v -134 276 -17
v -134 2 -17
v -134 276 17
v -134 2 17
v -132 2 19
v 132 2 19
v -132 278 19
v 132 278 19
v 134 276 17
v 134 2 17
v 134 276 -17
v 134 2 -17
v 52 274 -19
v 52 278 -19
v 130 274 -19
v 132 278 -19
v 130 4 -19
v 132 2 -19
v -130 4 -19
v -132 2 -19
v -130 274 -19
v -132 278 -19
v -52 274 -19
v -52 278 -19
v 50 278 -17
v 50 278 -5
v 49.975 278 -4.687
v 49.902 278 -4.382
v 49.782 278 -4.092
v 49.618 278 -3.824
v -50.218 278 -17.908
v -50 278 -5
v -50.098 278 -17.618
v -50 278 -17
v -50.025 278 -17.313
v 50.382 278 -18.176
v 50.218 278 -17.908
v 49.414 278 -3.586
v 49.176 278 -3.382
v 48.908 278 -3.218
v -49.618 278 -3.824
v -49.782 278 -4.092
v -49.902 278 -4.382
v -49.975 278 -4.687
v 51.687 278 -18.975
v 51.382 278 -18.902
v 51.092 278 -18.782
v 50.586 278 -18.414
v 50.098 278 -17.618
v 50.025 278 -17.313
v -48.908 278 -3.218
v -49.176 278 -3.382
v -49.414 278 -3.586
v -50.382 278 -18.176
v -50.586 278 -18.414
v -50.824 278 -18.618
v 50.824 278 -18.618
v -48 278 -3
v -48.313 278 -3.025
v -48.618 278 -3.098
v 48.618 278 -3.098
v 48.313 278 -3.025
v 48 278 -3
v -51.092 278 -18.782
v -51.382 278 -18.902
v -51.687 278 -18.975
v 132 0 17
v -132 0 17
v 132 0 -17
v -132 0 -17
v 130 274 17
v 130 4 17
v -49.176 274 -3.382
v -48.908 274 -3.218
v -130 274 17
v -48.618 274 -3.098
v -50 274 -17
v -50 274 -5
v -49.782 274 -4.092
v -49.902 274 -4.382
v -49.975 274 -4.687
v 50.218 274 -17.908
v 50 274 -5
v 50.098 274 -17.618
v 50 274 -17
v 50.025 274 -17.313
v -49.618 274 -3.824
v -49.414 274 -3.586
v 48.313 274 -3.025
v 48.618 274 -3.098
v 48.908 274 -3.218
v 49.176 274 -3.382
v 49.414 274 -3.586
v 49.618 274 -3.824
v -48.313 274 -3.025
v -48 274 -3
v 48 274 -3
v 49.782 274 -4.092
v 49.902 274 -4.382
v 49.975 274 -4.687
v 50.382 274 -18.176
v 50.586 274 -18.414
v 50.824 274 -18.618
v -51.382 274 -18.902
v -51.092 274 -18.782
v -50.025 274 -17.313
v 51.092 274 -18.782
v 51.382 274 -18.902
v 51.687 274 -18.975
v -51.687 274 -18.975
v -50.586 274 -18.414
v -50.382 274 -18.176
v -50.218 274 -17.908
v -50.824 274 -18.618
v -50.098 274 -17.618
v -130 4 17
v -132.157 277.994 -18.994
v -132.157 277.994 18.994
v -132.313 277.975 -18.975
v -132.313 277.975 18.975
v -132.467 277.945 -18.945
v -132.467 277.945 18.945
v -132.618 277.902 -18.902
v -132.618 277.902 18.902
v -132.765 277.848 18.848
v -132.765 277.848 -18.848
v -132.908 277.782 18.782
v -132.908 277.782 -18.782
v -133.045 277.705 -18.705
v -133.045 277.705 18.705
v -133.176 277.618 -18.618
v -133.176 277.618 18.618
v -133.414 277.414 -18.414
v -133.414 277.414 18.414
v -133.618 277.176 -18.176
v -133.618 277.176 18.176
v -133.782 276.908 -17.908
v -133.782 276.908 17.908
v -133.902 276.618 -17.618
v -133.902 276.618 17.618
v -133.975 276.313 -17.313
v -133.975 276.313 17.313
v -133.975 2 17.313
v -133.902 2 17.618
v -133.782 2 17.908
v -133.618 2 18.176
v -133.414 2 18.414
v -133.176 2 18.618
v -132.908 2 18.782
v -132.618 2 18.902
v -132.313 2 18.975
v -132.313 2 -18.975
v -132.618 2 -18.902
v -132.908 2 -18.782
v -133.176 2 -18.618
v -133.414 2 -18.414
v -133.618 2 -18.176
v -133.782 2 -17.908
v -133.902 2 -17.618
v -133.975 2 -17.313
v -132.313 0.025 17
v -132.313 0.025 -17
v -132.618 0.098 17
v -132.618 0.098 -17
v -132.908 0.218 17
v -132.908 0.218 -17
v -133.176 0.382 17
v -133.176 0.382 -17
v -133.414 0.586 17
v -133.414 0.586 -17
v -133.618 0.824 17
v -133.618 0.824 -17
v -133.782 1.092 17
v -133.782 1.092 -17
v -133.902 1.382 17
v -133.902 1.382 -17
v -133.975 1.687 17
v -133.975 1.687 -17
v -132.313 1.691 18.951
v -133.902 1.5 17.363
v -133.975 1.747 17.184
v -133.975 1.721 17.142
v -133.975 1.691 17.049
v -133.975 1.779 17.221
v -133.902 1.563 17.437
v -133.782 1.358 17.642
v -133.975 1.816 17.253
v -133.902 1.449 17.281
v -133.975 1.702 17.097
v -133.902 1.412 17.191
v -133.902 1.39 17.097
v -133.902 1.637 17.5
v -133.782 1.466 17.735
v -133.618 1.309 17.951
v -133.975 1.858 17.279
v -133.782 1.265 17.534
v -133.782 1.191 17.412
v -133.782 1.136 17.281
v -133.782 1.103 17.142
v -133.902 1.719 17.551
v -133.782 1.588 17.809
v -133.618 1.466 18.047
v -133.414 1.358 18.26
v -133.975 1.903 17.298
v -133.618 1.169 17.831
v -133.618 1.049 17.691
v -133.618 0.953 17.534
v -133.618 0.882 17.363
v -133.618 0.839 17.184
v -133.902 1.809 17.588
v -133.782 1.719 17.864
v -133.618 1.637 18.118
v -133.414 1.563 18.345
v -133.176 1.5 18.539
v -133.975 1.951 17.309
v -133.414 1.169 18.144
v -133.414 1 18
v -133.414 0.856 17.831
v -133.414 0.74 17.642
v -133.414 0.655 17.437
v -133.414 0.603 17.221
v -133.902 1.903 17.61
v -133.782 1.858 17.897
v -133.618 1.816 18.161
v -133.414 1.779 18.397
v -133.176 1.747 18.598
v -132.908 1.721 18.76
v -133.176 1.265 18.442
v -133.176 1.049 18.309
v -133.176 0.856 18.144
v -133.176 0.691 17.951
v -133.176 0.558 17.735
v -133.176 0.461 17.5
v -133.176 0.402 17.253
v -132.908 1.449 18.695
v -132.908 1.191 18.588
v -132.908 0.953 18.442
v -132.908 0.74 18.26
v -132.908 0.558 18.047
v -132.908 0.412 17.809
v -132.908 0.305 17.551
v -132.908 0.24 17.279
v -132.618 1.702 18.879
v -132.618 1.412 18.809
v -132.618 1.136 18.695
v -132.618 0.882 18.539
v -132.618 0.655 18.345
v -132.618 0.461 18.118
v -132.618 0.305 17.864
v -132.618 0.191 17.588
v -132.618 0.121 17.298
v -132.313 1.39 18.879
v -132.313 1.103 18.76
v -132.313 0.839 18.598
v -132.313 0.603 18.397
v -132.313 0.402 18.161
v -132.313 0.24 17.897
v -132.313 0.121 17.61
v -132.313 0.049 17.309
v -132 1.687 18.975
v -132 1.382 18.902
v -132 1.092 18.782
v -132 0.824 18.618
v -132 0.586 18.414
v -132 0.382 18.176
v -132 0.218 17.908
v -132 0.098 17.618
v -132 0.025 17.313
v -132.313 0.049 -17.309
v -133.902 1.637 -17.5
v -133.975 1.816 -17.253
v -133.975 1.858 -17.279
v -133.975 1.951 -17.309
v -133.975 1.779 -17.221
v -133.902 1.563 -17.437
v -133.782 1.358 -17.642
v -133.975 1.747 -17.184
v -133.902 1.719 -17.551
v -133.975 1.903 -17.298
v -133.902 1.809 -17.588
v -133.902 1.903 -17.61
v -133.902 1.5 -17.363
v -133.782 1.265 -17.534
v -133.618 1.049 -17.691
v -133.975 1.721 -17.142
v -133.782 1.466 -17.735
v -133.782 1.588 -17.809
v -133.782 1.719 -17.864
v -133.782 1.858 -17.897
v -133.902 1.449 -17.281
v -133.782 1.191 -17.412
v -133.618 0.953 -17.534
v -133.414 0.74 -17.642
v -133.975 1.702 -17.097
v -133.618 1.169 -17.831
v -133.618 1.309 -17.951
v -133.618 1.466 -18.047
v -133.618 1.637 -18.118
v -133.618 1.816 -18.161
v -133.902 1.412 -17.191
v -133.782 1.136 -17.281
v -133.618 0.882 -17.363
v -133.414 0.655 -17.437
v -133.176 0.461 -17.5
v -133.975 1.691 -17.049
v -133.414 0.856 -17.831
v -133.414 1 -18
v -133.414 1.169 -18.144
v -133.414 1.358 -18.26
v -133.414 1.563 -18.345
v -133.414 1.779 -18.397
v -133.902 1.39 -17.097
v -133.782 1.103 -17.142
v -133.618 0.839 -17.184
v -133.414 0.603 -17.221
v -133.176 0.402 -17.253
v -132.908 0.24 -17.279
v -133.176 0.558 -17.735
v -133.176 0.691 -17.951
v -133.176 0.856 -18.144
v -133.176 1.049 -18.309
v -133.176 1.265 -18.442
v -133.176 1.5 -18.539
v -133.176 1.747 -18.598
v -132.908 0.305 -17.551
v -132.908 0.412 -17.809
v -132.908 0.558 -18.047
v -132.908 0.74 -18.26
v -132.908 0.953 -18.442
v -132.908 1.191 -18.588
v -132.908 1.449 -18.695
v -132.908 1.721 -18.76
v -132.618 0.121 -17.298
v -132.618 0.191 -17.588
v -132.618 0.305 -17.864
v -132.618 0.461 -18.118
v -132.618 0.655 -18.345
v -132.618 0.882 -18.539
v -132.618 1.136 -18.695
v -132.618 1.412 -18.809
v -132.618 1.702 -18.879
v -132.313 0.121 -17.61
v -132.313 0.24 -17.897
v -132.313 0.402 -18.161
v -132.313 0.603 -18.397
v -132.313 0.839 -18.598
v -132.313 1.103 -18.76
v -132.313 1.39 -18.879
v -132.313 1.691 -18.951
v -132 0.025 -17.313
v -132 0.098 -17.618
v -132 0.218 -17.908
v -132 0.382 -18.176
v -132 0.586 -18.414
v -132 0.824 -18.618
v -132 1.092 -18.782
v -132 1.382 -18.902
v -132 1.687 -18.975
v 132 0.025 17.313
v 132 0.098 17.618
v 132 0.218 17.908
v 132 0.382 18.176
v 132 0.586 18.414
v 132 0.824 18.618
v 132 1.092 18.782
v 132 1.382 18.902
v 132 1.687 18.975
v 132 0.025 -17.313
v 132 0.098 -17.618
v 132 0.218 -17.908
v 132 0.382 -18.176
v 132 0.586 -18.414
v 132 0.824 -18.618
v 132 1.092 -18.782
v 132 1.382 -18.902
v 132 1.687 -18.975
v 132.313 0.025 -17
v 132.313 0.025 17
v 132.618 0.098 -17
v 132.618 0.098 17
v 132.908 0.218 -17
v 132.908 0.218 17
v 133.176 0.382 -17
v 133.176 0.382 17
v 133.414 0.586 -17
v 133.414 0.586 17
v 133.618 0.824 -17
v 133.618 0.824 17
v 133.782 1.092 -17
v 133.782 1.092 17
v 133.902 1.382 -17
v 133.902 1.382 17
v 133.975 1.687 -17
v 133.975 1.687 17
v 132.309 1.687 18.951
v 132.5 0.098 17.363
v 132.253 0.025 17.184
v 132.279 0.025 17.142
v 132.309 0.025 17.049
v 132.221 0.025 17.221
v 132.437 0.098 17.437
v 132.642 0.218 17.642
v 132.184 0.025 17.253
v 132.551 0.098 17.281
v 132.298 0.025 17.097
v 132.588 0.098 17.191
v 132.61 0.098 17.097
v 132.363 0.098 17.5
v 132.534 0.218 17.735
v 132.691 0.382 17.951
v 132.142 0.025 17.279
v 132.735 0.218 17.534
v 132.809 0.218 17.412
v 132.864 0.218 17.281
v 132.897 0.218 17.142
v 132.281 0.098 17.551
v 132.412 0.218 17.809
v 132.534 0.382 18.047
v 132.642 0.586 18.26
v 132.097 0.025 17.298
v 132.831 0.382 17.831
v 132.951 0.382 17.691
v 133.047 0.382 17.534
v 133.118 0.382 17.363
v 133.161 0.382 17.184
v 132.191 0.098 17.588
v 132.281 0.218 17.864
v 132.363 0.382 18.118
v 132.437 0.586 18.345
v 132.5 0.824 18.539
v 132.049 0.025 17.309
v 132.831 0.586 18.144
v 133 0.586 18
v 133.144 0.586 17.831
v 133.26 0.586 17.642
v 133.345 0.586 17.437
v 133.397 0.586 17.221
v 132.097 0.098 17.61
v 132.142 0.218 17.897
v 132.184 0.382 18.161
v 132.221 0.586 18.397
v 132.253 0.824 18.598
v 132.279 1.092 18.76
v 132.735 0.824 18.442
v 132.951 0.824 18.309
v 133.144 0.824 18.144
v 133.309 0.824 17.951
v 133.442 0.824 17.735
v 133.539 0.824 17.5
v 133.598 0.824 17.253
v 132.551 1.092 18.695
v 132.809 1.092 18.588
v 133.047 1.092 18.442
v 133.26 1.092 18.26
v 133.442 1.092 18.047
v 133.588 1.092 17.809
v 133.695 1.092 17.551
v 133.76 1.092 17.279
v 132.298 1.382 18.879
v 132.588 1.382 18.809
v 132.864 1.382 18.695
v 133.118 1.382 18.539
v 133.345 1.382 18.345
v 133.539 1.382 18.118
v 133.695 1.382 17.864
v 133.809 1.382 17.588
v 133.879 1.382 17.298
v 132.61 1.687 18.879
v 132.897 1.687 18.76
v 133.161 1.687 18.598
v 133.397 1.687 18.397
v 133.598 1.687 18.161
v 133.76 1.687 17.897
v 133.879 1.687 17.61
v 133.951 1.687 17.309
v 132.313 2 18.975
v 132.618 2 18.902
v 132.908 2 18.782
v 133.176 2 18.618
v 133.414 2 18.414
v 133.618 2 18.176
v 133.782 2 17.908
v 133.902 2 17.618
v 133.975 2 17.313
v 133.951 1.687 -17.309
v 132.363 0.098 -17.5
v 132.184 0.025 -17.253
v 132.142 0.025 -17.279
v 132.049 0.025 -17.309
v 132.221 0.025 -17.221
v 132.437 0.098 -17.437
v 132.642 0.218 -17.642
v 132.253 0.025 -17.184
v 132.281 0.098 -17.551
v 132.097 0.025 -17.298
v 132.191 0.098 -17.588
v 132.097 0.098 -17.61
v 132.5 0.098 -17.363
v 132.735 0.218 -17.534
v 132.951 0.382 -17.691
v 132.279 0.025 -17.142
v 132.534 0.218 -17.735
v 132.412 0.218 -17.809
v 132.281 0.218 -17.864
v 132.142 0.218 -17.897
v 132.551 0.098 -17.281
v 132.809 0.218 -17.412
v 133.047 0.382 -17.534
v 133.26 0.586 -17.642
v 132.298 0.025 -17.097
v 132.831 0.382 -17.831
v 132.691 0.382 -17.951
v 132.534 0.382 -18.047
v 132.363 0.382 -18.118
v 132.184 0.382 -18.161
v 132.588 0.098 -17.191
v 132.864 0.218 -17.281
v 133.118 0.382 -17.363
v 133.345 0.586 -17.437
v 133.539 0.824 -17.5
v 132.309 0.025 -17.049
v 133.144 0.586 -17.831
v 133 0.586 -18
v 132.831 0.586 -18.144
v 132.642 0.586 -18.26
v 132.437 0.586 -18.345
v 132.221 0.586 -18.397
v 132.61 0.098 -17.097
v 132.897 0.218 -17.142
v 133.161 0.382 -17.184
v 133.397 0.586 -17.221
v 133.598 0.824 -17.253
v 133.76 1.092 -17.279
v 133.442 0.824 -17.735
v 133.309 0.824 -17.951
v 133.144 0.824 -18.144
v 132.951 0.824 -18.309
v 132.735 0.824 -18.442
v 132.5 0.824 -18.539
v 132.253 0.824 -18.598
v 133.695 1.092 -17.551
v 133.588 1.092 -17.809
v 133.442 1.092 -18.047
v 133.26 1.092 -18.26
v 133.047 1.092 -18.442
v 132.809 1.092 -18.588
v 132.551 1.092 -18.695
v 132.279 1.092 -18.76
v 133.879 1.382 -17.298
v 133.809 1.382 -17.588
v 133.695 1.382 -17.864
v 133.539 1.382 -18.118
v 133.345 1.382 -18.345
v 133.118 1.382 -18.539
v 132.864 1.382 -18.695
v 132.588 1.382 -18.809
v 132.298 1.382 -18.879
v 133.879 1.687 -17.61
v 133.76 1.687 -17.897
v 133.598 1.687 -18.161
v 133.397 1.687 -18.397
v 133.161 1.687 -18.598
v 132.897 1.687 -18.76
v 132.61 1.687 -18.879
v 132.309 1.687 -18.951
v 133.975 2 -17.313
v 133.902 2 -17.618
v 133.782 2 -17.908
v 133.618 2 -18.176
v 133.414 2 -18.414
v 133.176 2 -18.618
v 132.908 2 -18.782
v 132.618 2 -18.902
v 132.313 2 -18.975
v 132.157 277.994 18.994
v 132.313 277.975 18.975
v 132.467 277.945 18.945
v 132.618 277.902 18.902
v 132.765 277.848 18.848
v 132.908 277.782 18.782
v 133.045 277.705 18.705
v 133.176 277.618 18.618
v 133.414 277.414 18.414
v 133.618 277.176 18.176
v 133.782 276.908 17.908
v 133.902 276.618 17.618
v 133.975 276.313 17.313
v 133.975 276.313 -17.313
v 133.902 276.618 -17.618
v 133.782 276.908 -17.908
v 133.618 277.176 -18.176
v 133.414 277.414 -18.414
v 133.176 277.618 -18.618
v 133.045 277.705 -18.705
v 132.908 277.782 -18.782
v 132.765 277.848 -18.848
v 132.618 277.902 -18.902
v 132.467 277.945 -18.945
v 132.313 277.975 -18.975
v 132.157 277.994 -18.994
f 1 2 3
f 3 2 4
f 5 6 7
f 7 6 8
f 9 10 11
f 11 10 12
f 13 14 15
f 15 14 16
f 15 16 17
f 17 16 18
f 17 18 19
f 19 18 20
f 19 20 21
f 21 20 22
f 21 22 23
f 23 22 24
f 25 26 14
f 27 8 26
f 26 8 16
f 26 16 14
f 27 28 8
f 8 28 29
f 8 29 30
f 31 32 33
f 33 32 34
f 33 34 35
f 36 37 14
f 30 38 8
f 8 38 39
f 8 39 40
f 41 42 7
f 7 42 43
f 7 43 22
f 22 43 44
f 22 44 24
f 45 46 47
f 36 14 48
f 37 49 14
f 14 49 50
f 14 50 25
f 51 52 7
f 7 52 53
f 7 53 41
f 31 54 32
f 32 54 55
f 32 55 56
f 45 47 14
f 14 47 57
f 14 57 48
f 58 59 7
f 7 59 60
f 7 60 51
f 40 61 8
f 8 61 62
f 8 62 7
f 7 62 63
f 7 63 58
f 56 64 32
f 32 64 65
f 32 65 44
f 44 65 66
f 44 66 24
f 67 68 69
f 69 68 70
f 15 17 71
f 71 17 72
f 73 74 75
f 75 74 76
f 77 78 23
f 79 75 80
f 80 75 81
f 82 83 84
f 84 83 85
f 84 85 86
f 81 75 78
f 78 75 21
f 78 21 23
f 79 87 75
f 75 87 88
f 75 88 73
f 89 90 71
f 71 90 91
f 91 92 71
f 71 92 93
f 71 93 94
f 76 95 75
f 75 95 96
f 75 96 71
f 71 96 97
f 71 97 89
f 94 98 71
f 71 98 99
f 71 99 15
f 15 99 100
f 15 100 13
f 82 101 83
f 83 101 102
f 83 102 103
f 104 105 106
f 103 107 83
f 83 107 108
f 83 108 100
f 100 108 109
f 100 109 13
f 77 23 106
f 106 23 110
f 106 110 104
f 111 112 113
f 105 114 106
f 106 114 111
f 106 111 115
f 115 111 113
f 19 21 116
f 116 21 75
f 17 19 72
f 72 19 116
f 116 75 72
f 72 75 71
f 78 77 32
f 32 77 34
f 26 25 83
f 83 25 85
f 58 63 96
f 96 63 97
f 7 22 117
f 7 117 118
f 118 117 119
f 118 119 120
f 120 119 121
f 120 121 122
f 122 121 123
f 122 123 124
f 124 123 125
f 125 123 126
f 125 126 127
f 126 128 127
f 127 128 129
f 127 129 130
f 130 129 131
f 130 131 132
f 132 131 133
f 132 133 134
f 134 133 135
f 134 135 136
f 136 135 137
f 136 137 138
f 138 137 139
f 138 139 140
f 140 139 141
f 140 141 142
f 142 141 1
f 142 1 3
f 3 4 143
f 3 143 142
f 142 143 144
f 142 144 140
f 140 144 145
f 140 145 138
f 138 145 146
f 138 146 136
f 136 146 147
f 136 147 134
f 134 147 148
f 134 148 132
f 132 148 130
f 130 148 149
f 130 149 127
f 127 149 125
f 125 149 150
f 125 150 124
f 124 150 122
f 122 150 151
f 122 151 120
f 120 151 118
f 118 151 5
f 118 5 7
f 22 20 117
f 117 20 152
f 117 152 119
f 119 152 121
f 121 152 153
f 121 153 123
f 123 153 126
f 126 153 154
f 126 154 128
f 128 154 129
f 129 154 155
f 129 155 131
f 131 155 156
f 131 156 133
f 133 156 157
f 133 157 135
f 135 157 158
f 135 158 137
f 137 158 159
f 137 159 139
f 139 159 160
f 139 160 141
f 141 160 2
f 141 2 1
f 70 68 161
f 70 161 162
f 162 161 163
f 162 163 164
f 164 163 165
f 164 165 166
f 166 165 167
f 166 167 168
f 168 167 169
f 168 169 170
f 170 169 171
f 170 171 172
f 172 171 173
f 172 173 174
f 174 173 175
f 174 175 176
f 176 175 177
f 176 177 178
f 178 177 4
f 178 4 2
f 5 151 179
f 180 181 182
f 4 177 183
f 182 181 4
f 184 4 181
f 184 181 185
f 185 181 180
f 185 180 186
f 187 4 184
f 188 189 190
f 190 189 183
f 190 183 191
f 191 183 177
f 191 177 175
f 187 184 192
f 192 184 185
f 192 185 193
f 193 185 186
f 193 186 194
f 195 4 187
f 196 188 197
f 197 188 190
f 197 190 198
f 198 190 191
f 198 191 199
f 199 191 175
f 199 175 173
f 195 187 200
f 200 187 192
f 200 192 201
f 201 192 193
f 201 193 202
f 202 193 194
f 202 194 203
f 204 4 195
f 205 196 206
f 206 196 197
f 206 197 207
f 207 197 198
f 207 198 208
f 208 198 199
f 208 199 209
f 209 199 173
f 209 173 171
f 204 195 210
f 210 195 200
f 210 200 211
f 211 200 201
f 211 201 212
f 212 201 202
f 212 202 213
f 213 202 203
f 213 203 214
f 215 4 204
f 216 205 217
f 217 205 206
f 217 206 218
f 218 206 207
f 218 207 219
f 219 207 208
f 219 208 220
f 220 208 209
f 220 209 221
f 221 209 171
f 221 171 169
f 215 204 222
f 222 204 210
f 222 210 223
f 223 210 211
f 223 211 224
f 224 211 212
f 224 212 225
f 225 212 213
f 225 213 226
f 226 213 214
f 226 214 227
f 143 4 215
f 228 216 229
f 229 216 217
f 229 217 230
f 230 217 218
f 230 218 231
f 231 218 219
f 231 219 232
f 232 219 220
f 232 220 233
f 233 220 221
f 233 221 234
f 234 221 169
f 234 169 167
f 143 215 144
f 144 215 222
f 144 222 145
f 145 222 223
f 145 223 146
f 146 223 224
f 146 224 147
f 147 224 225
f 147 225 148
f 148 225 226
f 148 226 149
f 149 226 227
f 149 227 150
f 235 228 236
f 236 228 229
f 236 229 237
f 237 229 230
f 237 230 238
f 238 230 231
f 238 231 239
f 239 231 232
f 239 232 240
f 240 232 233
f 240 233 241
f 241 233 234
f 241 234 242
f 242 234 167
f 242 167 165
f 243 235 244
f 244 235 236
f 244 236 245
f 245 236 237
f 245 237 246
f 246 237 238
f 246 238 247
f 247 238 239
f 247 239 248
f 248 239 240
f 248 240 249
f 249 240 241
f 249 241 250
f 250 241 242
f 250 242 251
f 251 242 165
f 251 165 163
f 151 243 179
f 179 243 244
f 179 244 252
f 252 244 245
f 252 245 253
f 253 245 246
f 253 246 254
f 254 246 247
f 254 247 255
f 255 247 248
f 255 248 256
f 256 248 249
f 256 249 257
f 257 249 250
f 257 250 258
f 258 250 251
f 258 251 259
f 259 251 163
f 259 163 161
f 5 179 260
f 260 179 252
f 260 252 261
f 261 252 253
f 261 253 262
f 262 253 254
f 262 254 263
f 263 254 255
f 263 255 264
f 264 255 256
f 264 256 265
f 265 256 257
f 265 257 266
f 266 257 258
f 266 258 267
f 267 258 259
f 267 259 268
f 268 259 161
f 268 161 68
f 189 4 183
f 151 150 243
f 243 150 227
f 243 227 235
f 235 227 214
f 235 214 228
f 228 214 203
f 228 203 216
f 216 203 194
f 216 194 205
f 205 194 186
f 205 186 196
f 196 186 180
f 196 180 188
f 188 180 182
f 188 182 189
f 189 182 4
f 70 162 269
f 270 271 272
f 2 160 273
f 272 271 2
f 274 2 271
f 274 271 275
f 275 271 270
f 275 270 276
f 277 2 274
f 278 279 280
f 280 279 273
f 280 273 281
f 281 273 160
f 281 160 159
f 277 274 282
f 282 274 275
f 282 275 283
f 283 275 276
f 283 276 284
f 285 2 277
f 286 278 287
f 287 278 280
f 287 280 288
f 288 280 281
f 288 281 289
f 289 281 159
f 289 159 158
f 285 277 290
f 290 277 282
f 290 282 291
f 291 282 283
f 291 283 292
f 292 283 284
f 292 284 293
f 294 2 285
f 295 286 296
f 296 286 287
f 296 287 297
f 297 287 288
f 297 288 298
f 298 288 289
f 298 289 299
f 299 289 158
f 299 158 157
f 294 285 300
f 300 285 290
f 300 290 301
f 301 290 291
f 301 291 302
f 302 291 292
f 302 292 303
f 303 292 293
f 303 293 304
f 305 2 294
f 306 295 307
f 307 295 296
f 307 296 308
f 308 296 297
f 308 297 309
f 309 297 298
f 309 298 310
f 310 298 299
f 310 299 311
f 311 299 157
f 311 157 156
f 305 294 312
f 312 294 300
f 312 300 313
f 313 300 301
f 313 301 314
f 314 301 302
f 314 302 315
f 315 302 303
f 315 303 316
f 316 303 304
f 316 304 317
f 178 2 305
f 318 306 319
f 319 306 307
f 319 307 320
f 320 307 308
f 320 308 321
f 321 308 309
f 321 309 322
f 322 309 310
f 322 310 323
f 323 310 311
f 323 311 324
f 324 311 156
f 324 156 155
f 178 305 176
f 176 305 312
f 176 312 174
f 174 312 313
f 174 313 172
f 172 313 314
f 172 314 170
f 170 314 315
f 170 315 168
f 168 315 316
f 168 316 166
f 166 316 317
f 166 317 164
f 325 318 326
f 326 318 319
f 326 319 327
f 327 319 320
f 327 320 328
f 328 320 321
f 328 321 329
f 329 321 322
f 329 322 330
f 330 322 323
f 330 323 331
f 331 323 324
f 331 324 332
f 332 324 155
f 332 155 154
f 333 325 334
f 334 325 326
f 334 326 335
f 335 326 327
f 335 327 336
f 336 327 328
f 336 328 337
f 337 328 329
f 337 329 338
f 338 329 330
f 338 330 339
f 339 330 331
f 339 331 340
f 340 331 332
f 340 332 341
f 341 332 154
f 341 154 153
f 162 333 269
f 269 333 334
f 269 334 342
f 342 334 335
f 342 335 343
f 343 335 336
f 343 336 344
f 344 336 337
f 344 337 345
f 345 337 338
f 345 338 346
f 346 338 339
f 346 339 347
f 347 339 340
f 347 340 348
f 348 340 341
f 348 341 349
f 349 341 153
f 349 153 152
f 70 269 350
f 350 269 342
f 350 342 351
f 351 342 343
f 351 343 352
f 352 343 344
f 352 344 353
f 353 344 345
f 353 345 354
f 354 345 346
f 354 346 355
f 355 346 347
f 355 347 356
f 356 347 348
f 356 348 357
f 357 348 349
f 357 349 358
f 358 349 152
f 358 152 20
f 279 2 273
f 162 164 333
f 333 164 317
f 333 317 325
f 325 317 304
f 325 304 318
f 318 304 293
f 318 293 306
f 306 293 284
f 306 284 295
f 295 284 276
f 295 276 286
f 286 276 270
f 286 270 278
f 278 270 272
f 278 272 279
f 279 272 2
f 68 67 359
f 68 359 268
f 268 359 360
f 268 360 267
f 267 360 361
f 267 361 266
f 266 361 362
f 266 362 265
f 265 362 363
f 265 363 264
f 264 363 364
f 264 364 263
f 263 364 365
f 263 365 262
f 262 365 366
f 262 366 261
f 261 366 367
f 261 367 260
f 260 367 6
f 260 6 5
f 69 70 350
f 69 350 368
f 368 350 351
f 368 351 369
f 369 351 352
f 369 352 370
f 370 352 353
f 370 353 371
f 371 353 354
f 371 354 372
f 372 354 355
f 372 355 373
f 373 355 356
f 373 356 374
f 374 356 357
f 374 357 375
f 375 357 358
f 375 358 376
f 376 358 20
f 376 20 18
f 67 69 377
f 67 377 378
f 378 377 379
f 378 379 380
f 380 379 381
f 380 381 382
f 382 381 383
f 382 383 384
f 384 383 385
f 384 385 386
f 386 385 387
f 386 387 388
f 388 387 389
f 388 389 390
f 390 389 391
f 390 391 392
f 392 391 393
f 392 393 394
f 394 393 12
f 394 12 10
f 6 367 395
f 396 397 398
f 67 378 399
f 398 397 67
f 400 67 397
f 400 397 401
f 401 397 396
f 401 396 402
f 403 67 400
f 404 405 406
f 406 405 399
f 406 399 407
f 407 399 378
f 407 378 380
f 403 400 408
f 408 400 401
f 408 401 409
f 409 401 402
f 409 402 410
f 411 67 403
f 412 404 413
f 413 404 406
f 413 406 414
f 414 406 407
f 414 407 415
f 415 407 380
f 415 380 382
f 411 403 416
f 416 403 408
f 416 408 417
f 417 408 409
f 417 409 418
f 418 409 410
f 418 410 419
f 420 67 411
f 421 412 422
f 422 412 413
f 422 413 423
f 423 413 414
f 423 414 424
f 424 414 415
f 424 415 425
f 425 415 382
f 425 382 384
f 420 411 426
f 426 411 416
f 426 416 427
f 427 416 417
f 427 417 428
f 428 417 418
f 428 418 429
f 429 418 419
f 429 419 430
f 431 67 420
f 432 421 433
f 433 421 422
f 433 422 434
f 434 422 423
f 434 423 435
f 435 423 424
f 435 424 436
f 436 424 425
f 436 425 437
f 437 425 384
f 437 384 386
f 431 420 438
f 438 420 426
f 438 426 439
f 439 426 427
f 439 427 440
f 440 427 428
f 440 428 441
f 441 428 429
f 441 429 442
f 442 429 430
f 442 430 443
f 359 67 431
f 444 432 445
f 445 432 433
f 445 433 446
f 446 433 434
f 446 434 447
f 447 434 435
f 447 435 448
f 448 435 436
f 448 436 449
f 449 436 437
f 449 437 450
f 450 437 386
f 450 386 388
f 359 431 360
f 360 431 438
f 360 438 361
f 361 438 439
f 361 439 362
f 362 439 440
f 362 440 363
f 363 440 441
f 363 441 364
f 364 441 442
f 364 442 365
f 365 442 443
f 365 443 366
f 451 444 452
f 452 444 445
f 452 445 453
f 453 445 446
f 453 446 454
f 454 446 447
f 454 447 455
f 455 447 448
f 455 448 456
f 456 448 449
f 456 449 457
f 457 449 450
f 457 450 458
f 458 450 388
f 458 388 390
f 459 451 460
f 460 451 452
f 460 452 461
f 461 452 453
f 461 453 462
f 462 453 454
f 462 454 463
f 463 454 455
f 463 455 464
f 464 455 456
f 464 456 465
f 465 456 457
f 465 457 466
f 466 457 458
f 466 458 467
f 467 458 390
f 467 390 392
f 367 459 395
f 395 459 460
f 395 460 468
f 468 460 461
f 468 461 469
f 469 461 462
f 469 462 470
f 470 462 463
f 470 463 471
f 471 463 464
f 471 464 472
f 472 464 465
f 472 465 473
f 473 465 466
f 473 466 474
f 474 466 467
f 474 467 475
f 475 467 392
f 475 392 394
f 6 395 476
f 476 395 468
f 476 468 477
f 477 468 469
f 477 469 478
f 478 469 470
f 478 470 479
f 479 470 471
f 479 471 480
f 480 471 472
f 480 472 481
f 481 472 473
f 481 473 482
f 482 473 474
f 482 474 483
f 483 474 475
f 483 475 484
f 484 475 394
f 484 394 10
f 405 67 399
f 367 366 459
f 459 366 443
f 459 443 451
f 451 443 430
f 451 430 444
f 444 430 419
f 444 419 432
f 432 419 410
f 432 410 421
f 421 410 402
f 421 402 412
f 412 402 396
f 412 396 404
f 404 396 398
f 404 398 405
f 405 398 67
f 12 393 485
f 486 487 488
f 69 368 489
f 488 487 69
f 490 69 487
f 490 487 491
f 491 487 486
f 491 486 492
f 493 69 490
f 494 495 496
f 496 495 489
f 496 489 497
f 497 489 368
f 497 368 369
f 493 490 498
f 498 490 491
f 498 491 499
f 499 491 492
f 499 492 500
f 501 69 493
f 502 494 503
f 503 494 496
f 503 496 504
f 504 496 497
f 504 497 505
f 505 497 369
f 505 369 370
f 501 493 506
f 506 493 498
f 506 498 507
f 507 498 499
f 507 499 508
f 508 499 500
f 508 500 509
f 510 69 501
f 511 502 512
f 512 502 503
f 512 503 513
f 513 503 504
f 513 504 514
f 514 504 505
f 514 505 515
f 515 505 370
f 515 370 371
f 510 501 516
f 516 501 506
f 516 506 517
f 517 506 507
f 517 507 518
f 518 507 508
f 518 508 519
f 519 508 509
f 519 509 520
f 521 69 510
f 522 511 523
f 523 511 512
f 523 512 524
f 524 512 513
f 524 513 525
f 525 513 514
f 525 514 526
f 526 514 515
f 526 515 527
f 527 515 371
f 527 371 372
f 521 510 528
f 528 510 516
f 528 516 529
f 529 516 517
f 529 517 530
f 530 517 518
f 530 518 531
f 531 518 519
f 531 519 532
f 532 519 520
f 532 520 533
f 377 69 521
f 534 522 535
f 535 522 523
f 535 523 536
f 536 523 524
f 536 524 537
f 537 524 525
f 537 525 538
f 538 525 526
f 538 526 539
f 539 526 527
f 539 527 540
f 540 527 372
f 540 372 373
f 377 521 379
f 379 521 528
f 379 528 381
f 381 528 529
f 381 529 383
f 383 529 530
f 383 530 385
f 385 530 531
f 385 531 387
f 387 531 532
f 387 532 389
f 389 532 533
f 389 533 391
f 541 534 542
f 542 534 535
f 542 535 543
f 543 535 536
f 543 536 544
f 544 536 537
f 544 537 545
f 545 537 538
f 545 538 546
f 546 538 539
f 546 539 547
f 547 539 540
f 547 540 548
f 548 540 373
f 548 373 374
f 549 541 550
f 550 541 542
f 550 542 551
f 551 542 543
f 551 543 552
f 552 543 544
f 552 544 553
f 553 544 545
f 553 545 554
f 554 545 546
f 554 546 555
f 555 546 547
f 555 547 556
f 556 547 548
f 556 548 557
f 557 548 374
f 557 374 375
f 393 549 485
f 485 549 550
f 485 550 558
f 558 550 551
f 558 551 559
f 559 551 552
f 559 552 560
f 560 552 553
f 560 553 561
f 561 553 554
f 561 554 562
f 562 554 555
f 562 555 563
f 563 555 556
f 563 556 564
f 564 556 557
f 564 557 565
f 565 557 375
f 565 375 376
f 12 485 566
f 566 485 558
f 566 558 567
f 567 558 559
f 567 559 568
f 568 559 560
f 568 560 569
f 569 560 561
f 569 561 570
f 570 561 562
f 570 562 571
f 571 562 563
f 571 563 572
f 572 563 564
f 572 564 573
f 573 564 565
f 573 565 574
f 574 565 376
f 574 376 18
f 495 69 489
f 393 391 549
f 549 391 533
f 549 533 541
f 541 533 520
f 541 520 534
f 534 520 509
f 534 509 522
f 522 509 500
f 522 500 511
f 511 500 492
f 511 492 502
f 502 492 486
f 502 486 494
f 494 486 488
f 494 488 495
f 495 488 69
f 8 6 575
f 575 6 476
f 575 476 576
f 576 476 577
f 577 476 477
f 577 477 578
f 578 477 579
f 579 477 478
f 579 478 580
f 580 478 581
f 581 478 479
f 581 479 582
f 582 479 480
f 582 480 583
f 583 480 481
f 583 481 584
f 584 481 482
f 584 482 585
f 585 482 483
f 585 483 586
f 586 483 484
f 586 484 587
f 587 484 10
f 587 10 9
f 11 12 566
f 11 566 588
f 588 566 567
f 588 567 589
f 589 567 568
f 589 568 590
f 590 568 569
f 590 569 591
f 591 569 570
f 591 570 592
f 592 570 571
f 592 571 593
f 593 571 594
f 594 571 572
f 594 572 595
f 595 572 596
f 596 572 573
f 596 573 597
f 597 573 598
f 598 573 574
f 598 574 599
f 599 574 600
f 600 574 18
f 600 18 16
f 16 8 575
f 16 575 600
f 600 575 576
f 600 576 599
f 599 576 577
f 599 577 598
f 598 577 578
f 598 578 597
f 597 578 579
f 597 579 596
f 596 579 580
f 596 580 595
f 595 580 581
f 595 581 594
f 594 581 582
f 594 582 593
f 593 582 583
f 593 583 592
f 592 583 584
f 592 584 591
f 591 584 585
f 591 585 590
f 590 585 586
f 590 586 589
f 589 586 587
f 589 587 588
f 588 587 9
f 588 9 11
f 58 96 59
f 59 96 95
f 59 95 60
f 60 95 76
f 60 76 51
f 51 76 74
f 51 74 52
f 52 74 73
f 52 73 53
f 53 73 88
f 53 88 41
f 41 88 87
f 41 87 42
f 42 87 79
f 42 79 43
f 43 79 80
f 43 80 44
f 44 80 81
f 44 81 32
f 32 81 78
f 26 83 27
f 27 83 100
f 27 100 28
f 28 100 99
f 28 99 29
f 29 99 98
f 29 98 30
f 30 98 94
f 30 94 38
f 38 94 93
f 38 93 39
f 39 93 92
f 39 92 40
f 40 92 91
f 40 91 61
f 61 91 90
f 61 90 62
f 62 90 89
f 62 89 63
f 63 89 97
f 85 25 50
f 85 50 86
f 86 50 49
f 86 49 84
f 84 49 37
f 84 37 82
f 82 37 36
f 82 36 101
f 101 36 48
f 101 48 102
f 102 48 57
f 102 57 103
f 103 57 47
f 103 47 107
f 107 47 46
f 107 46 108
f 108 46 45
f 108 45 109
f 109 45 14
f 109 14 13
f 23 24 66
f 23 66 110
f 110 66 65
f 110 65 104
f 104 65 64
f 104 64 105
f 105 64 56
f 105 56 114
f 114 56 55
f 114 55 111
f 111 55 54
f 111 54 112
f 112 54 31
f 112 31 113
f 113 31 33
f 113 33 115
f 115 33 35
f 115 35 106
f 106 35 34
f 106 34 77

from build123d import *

# Parameters (mm, degrees)
SKETCH_1_W          = 268
SKETCH_1_H          = 38
EXTRUDE_1_DEPTH     = 278
SKETCH_2_W          = 260
SKETCH_2_H          = 270
CUT_EXTRUDE_1_DEPTH = 36
CUT_EXTRUDE_2_REACH = 311.194
SKETCH_3_W          = 100
SKETCH_3_H          = 16
FILLET_1_R          = 2


with BuildPart() as part:
    # 草图1 → 凸台-拉伸1 (new body)
    with BuildSketch(Plane(origin=(0, 0, 0), x_dir=(1, 0, 0), z_dir=(0, 1, 0))):
        Rectangle(SKETCH_1_W, SKETCH_1_H)
    extrude(amount=EXTRUDE_1_DEPTH)

    # 草图2 → 切除-拉伸1 (cut)
    with BuildSketch(Plane(origin=(0, 0, -19), x_dir=(-1, 0, 0), z_dir=(0, 0, -1))):
        with Locations((0, 139)):
            Rectangle(SKETCH_2_W, SKETCH_2_H)
    extrude(amount=-CUT_EXTRUDE_1_DEPTH, mode=Mode.SUBTRACT)

    # 草图3 → 切除-拉伸2 (cut, up to next)
    with BuildSketch(Plane(origin=(0, 278, 0), x_dir=(1, 0, 0), z_dir=(0, 1, 0)), mode=Mode.PRIVATE) as cut_extrude_2_sk1:
        with Locations((0, 11)):
            Rectangle(SKETCH_3_W, SKETCH_3_H)
    cut_extrude_2_tool1 = extrude(cut_extrude_2_sk1.sketch, amount=-CUT_EXTRUDE_2_REACH, mode=Mode.PRIVATE) & part.part
    add(cut_extrude_2_tool1.solids().sort_by_distance((0, 278, -11))[0], mode=Mode.SUBTRACT)

    # 圆角1
    fillet_1_edges = [part.edges().sort_by_distance(p)[0] for p in [
        (134, 278, 0),
        (-50, 276, -3),
        (-50, 276, -19),
        (50, 276, -19),
        (50, 276, -3),
        (-134, 278, 0),
        (0, 0, -19),
        (134, 0, 0),
        (0, 0, 19),
        (-134, 0, 0),
        (-134, 139, -19),
        (134, 139, -19),
        (134, 139, 19),
        (-134, 139, 19),
    ]]
    fillet(fillet_1_edges, radius=FILLET_1_R)


solid = part.part
